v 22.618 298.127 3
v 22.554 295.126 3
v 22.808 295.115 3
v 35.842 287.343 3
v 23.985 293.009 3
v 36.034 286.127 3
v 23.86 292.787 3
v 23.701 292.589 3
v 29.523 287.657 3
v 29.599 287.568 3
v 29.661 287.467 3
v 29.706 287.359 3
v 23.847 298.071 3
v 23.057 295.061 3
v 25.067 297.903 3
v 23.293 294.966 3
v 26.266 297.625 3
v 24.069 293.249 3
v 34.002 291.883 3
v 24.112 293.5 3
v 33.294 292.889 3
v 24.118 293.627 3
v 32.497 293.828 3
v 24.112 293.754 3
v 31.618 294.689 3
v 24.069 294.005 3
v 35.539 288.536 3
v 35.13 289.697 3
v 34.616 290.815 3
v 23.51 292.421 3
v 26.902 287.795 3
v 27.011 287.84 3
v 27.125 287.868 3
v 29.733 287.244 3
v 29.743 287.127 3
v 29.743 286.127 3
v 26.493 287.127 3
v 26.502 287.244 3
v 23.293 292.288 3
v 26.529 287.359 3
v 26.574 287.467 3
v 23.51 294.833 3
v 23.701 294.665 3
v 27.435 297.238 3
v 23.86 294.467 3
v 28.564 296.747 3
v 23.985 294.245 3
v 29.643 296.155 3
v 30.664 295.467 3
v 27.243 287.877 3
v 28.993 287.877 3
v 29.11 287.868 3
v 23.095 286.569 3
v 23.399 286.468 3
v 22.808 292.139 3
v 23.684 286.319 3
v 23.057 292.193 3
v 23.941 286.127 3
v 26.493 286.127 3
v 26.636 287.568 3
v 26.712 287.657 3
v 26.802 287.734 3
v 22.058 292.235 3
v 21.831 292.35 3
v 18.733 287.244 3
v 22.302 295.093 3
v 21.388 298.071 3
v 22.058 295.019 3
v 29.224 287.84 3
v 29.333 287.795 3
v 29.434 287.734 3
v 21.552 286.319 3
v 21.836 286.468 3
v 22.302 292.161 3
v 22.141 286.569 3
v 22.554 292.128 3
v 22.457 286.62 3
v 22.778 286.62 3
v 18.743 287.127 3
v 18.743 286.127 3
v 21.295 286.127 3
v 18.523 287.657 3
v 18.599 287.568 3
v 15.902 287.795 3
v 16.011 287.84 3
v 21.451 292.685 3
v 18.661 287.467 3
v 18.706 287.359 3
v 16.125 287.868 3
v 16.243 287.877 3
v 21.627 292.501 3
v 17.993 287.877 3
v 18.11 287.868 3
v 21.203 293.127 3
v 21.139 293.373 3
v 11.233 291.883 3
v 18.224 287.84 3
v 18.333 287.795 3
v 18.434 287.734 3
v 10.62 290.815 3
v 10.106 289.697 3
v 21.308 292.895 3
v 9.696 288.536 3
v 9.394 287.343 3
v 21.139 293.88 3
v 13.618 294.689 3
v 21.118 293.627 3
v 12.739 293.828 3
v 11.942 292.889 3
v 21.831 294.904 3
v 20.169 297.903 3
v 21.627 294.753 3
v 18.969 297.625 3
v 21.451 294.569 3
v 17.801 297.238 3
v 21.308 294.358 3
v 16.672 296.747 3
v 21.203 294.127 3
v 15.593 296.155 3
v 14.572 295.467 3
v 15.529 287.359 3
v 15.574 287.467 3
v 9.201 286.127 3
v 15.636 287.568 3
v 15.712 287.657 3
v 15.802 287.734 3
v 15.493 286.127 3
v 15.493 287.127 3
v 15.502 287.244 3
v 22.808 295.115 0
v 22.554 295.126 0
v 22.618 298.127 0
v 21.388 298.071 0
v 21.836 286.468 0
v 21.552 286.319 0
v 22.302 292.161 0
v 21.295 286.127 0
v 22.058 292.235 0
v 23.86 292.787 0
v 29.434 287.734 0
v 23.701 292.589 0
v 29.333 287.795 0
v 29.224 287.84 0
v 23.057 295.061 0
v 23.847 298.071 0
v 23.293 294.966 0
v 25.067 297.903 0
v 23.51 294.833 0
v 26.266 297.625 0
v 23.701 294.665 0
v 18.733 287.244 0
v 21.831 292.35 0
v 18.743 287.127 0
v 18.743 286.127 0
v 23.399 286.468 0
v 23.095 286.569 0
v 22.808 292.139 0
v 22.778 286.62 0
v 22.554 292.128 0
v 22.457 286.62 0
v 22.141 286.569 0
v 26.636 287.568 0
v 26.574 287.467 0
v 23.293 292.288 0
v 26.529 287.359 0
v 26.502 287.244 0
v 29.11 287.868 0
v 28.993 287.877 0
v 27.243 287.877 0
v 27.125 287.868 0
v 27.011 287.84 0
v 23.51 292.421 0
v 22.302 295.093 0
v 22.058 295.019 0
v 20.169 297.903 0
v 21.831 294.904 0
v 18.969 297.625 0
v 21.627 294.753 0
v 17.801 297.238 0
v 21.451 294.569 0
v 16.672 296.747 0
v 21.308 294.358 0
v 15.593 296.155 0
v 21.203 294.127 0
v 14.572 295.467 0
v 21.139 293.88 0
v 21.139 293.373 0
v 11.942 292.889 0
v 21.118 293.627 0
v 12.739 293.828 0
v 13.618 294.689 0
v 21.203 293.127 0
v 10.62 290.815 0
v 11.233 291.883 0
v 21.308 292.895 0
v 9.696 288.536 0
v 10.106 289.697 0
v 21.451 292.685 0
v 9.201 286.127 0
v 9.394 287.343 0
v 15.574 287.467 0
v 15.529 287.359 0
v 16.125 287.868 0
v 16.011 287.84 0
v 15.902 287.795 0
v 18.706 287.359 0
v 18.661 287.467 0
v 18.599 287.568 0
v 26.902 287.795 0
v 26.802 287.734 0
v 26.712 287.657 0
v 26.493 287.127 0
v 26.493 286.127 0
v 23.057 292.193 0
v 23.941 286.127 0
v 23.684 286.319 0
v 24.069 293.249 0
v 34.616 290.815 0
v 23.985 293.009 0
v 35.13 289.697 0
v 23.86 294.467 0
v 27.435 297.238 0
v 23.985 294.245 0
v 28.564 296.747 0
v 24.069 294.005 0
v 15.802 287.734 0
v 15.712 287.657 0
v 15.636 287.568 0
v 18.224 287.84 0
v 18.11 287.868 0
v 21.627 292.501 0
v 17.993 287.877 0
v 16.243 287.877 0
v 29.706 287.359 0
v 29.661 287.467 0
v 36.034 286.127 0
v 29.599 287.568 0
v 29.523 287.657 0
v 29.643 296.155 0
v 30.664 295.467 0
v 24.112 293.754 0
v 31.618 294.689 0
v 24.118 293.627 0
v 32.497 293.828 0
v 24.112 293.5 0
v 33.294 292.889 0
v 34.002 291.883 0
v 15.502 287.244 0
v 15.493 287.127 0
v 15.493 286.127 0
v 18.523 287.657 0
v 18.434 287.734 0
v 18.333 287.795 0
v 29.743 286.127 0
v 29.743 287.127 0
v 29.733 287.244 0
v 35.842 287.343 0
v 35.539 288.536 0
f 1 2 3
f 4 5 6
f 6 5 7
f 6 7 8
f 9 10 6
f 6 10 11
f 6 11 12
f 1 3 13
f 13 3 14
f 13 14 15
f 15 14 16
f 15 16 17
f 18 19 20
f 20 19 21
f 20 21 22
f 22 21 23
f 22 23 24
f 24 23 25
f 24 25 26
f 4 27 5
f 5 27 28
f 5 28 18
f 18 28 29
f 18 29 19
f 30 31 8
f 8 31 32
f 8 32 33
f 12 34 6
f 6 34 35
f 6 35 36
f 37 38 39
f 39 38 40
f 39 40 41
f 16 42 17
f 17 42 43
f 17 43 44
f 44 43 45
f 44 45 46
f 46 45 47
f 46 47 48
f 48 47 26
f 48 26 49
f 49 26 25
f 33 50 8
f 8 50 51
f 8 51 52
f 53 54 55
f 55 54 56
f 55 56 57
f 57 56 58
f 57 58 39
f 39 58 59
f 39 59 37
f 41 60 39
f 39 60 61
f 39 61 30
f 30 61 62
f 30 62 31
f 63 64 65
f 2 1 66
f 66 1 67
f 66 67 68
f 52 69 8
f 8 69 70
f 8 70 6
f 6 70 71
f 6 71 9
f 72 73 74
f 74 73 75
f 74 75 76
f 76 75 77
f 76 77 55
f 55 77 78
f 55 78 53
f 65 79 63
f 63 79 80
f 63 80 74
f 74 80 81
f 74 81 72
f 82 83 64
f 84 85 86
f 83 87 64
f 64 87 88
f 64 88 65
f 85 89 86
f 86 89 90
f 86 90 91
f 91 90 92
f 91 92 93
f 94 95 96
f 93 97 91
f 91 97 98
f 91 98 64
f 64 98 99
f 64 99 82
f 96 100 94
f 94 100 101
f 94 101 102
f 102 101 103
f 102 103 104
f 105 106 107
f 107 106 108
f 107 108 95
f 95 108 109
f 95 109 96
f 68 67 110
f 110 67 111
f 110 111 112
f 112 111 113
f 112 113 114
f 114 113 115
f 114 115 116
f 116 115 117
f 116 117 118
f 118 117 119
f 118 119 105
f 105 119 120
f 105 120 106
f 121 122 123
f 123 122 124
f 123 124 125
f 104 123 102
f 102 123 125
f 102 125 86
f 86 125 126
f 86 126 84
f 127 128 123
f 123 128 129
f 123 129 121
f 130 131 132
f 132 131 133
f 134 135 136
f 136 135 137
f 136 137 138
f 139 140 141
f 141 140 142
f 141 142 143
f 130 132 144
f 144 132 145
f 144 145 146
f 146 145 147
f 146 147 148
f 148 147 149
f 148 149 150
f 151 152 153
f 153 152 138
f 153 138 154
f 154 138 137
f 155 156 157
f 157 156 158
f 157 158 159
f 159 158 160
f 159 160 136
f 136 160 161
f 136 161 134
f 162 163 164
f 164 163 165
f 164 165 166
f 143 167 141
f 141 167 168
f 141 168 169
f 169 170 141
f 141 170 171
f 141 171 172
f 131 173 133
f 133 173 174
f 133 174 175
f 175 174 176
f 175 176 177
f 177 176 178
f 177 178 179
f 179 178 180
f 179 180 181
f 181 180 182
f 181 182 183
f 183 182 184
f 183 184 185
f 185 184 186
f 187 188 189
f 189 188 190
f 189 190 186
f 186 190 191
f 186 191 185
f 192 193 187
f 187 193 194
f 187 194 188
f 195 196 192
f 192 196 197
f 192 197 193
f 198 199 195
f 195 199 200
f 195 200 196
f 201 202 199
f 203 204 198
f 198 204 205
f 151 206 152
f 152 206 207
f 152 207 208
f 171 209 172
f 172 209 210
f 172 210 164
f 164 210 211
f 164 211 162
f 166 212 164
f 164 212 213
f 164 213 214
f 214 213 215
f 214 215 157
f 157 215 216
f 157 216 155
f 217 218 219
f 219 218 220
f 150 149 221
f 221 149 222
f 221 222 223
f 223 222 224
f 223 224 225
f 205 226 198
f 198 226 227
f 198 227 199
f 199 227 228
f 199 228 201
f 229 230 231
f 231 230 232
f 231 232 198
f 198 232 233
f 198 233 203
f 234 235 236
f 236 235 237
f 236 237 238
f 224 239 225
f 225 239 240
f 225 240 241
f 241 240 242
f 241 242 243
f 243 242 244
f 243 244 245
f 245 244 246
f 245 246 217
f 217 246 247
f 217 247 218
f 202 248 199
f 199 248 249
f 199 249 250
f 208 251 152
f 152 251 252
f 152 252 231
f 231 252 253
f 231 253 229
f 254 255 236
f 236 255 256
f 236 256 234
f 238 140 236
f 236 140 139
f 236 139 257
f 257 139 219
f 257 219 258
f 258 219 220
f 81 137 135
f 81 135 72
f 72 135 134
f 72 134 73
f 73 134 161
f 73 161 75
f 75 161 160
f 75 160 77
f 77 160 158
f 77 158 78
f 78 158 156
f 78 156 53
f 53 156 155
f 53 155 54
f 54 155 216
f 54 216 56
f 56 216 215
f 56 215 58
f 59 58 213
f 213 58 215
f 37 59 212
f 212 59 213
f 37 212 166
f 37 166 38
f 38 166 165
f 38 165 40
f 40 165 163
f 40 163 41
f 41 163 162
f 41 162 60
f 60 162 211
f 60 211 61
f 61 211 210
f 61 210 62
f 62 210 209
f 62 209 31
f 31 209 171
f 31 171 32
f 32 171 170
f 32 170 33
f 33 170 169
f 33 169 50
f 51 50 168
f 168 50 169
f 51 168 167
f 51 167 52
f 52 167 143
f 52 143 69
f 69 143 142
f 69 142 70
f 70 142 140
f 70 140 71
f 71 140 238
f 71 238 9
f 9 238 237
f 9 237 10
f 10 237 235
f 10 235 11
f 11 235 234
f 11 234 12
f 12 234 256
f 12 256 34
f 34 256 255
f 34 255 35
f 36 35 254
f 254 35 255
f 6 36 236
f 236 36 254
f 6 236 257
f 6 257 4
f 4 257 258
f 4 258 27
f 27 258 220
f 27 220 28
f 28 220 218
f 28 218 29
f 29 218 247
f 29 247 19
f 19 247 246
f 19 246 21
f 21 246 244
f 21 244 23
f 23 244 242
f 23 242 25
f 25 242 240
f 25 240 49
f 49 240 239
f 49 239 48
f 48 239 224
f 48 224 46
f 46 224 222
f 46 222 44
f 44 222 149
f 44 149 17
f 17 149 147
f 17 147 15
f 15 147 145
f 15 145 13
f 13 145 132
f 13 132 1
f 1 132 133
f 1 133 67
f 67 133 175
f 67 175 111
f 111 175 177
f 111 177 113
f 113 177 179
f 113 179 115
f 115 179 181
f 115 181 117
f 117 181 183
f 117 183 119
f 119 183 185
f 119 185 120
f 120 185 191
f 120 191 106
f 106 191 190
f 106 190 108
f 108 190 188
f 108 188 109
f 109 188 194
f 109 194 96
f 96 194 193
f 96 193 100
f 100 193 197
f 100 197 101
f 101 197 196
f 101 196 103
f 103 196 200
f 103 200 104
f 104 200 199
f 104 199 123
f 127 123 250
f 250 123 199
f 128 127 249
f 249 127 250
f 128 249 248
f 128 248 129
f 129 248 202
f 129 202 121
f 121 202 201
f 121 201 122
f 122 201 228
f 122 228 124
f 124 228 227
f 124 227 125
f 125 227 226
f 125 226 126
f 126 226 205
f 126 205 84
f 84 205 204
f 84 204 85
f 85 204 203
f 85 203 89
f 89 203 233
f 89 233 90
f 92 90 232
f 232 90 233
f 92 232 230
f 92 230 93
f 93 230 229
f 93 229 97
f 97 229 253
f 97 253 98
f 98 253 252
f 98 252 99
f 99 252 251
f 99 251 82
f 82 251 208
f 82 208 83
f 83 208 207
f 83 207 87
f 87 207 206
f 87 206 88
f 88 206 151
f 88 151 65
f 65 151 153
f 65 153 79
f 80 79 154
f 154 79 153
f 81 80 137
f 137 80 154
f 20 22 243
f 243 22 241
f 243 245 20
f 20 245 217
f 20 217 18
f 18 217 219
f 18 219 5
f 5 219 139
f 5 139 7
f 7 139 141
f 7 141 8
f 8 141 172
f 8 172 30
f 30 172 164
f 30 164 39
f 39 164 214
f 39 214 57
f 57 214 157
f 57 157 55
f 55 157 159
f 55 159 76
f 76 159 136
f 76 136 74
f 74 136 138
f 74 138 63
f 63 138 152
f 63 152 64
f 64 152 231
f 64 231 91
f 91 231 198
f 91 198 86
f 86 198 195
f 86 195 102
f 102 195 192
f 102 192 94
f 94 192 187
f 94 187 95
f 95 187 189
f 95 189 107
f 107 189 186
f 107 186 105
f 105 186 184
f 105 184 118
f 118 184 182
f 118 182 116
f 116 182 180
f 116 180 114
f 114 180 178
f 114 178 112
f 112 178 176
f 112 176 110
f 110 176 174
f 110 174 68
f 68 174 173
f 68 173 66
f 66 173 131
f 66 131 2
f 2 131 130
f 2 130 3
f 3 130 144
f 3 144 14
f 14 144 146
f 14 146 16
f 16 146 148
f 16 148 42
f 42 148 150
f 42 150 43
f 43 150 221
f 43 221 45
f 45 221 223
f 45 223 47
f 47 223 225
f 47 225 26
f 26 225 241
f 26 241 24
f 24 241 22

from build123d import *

# Parameters (mm, degrees)
MODEL_R                 = 1.5
SALIENTE_EXTRUIR1_DEPTH = 3


with BuildPart() as part:
    # Model → Saliente-Extruir1 (new body)
    with BuildSketch(Plane.XY):
        with BuildLine():
            Line((21.294846678, 286.126884365), (18.742722334, 286.126884365))
            Line((18.742722334, 286.126884365), (18.742722334, 287.126884365))
            ThreePointArc((18.742722334, 287.126884365), (18.523052419, 287.657214451), (17.992722334, 287.876884365))
            Line((17.992722334, 287.876884365), (16.242722334, 287.876884365))
            ThreePointArc((16.242722334, 287.876884365), (15.712392248, 287.657214451), (15.492722334, 287.126884365))
            Line((15.492722334, 287.126884365), (15.492722334, 286.126884365))
            Line((15.492722334, 286.126884365), (9.201314468, 286.126884365))
            ThreePointArc((9.201314468, 286.126884365), (22.617722333, 298.126884365), (36.034130199, 286.126884365))
            Line((36.034130199, 286.126884365), (29.742722334, 286.126884365))
            Line((29.742722334, 286.126884365), (29.742722334, 287.126884365))
            ThreePointArc((29.742722334, 287.126884365), (29.523052419, 287.657214451), (28.992722334, 287.876884365))
            Line((28.992722334, 287.876884365), (27.242722334, 287.876884365))
            ThreePointArc((27.242722334, 287.876884365), (26.712392248, 287.657214451), (26.492722334, 287.126884365))
            Line((26.492722334, 287.126884365), (26.492722334, 286.126884365))
            Line((26.492722334, 286.126884365), (23.940597989, 286.126884365))
            ThreePointArc((23.940597989, 286.126884365), (22.617722333, 286.626884365), (21.294846678, 286.126884365))
        make_face()
        with Locations((22.617722334, 293.626884365)):
            Circle(MODEL_R, mode=Mode.SUBTRACT)
    extrude(amount=SALIENTE_EXTRUIR1_DEPTH)


solid = part.part
